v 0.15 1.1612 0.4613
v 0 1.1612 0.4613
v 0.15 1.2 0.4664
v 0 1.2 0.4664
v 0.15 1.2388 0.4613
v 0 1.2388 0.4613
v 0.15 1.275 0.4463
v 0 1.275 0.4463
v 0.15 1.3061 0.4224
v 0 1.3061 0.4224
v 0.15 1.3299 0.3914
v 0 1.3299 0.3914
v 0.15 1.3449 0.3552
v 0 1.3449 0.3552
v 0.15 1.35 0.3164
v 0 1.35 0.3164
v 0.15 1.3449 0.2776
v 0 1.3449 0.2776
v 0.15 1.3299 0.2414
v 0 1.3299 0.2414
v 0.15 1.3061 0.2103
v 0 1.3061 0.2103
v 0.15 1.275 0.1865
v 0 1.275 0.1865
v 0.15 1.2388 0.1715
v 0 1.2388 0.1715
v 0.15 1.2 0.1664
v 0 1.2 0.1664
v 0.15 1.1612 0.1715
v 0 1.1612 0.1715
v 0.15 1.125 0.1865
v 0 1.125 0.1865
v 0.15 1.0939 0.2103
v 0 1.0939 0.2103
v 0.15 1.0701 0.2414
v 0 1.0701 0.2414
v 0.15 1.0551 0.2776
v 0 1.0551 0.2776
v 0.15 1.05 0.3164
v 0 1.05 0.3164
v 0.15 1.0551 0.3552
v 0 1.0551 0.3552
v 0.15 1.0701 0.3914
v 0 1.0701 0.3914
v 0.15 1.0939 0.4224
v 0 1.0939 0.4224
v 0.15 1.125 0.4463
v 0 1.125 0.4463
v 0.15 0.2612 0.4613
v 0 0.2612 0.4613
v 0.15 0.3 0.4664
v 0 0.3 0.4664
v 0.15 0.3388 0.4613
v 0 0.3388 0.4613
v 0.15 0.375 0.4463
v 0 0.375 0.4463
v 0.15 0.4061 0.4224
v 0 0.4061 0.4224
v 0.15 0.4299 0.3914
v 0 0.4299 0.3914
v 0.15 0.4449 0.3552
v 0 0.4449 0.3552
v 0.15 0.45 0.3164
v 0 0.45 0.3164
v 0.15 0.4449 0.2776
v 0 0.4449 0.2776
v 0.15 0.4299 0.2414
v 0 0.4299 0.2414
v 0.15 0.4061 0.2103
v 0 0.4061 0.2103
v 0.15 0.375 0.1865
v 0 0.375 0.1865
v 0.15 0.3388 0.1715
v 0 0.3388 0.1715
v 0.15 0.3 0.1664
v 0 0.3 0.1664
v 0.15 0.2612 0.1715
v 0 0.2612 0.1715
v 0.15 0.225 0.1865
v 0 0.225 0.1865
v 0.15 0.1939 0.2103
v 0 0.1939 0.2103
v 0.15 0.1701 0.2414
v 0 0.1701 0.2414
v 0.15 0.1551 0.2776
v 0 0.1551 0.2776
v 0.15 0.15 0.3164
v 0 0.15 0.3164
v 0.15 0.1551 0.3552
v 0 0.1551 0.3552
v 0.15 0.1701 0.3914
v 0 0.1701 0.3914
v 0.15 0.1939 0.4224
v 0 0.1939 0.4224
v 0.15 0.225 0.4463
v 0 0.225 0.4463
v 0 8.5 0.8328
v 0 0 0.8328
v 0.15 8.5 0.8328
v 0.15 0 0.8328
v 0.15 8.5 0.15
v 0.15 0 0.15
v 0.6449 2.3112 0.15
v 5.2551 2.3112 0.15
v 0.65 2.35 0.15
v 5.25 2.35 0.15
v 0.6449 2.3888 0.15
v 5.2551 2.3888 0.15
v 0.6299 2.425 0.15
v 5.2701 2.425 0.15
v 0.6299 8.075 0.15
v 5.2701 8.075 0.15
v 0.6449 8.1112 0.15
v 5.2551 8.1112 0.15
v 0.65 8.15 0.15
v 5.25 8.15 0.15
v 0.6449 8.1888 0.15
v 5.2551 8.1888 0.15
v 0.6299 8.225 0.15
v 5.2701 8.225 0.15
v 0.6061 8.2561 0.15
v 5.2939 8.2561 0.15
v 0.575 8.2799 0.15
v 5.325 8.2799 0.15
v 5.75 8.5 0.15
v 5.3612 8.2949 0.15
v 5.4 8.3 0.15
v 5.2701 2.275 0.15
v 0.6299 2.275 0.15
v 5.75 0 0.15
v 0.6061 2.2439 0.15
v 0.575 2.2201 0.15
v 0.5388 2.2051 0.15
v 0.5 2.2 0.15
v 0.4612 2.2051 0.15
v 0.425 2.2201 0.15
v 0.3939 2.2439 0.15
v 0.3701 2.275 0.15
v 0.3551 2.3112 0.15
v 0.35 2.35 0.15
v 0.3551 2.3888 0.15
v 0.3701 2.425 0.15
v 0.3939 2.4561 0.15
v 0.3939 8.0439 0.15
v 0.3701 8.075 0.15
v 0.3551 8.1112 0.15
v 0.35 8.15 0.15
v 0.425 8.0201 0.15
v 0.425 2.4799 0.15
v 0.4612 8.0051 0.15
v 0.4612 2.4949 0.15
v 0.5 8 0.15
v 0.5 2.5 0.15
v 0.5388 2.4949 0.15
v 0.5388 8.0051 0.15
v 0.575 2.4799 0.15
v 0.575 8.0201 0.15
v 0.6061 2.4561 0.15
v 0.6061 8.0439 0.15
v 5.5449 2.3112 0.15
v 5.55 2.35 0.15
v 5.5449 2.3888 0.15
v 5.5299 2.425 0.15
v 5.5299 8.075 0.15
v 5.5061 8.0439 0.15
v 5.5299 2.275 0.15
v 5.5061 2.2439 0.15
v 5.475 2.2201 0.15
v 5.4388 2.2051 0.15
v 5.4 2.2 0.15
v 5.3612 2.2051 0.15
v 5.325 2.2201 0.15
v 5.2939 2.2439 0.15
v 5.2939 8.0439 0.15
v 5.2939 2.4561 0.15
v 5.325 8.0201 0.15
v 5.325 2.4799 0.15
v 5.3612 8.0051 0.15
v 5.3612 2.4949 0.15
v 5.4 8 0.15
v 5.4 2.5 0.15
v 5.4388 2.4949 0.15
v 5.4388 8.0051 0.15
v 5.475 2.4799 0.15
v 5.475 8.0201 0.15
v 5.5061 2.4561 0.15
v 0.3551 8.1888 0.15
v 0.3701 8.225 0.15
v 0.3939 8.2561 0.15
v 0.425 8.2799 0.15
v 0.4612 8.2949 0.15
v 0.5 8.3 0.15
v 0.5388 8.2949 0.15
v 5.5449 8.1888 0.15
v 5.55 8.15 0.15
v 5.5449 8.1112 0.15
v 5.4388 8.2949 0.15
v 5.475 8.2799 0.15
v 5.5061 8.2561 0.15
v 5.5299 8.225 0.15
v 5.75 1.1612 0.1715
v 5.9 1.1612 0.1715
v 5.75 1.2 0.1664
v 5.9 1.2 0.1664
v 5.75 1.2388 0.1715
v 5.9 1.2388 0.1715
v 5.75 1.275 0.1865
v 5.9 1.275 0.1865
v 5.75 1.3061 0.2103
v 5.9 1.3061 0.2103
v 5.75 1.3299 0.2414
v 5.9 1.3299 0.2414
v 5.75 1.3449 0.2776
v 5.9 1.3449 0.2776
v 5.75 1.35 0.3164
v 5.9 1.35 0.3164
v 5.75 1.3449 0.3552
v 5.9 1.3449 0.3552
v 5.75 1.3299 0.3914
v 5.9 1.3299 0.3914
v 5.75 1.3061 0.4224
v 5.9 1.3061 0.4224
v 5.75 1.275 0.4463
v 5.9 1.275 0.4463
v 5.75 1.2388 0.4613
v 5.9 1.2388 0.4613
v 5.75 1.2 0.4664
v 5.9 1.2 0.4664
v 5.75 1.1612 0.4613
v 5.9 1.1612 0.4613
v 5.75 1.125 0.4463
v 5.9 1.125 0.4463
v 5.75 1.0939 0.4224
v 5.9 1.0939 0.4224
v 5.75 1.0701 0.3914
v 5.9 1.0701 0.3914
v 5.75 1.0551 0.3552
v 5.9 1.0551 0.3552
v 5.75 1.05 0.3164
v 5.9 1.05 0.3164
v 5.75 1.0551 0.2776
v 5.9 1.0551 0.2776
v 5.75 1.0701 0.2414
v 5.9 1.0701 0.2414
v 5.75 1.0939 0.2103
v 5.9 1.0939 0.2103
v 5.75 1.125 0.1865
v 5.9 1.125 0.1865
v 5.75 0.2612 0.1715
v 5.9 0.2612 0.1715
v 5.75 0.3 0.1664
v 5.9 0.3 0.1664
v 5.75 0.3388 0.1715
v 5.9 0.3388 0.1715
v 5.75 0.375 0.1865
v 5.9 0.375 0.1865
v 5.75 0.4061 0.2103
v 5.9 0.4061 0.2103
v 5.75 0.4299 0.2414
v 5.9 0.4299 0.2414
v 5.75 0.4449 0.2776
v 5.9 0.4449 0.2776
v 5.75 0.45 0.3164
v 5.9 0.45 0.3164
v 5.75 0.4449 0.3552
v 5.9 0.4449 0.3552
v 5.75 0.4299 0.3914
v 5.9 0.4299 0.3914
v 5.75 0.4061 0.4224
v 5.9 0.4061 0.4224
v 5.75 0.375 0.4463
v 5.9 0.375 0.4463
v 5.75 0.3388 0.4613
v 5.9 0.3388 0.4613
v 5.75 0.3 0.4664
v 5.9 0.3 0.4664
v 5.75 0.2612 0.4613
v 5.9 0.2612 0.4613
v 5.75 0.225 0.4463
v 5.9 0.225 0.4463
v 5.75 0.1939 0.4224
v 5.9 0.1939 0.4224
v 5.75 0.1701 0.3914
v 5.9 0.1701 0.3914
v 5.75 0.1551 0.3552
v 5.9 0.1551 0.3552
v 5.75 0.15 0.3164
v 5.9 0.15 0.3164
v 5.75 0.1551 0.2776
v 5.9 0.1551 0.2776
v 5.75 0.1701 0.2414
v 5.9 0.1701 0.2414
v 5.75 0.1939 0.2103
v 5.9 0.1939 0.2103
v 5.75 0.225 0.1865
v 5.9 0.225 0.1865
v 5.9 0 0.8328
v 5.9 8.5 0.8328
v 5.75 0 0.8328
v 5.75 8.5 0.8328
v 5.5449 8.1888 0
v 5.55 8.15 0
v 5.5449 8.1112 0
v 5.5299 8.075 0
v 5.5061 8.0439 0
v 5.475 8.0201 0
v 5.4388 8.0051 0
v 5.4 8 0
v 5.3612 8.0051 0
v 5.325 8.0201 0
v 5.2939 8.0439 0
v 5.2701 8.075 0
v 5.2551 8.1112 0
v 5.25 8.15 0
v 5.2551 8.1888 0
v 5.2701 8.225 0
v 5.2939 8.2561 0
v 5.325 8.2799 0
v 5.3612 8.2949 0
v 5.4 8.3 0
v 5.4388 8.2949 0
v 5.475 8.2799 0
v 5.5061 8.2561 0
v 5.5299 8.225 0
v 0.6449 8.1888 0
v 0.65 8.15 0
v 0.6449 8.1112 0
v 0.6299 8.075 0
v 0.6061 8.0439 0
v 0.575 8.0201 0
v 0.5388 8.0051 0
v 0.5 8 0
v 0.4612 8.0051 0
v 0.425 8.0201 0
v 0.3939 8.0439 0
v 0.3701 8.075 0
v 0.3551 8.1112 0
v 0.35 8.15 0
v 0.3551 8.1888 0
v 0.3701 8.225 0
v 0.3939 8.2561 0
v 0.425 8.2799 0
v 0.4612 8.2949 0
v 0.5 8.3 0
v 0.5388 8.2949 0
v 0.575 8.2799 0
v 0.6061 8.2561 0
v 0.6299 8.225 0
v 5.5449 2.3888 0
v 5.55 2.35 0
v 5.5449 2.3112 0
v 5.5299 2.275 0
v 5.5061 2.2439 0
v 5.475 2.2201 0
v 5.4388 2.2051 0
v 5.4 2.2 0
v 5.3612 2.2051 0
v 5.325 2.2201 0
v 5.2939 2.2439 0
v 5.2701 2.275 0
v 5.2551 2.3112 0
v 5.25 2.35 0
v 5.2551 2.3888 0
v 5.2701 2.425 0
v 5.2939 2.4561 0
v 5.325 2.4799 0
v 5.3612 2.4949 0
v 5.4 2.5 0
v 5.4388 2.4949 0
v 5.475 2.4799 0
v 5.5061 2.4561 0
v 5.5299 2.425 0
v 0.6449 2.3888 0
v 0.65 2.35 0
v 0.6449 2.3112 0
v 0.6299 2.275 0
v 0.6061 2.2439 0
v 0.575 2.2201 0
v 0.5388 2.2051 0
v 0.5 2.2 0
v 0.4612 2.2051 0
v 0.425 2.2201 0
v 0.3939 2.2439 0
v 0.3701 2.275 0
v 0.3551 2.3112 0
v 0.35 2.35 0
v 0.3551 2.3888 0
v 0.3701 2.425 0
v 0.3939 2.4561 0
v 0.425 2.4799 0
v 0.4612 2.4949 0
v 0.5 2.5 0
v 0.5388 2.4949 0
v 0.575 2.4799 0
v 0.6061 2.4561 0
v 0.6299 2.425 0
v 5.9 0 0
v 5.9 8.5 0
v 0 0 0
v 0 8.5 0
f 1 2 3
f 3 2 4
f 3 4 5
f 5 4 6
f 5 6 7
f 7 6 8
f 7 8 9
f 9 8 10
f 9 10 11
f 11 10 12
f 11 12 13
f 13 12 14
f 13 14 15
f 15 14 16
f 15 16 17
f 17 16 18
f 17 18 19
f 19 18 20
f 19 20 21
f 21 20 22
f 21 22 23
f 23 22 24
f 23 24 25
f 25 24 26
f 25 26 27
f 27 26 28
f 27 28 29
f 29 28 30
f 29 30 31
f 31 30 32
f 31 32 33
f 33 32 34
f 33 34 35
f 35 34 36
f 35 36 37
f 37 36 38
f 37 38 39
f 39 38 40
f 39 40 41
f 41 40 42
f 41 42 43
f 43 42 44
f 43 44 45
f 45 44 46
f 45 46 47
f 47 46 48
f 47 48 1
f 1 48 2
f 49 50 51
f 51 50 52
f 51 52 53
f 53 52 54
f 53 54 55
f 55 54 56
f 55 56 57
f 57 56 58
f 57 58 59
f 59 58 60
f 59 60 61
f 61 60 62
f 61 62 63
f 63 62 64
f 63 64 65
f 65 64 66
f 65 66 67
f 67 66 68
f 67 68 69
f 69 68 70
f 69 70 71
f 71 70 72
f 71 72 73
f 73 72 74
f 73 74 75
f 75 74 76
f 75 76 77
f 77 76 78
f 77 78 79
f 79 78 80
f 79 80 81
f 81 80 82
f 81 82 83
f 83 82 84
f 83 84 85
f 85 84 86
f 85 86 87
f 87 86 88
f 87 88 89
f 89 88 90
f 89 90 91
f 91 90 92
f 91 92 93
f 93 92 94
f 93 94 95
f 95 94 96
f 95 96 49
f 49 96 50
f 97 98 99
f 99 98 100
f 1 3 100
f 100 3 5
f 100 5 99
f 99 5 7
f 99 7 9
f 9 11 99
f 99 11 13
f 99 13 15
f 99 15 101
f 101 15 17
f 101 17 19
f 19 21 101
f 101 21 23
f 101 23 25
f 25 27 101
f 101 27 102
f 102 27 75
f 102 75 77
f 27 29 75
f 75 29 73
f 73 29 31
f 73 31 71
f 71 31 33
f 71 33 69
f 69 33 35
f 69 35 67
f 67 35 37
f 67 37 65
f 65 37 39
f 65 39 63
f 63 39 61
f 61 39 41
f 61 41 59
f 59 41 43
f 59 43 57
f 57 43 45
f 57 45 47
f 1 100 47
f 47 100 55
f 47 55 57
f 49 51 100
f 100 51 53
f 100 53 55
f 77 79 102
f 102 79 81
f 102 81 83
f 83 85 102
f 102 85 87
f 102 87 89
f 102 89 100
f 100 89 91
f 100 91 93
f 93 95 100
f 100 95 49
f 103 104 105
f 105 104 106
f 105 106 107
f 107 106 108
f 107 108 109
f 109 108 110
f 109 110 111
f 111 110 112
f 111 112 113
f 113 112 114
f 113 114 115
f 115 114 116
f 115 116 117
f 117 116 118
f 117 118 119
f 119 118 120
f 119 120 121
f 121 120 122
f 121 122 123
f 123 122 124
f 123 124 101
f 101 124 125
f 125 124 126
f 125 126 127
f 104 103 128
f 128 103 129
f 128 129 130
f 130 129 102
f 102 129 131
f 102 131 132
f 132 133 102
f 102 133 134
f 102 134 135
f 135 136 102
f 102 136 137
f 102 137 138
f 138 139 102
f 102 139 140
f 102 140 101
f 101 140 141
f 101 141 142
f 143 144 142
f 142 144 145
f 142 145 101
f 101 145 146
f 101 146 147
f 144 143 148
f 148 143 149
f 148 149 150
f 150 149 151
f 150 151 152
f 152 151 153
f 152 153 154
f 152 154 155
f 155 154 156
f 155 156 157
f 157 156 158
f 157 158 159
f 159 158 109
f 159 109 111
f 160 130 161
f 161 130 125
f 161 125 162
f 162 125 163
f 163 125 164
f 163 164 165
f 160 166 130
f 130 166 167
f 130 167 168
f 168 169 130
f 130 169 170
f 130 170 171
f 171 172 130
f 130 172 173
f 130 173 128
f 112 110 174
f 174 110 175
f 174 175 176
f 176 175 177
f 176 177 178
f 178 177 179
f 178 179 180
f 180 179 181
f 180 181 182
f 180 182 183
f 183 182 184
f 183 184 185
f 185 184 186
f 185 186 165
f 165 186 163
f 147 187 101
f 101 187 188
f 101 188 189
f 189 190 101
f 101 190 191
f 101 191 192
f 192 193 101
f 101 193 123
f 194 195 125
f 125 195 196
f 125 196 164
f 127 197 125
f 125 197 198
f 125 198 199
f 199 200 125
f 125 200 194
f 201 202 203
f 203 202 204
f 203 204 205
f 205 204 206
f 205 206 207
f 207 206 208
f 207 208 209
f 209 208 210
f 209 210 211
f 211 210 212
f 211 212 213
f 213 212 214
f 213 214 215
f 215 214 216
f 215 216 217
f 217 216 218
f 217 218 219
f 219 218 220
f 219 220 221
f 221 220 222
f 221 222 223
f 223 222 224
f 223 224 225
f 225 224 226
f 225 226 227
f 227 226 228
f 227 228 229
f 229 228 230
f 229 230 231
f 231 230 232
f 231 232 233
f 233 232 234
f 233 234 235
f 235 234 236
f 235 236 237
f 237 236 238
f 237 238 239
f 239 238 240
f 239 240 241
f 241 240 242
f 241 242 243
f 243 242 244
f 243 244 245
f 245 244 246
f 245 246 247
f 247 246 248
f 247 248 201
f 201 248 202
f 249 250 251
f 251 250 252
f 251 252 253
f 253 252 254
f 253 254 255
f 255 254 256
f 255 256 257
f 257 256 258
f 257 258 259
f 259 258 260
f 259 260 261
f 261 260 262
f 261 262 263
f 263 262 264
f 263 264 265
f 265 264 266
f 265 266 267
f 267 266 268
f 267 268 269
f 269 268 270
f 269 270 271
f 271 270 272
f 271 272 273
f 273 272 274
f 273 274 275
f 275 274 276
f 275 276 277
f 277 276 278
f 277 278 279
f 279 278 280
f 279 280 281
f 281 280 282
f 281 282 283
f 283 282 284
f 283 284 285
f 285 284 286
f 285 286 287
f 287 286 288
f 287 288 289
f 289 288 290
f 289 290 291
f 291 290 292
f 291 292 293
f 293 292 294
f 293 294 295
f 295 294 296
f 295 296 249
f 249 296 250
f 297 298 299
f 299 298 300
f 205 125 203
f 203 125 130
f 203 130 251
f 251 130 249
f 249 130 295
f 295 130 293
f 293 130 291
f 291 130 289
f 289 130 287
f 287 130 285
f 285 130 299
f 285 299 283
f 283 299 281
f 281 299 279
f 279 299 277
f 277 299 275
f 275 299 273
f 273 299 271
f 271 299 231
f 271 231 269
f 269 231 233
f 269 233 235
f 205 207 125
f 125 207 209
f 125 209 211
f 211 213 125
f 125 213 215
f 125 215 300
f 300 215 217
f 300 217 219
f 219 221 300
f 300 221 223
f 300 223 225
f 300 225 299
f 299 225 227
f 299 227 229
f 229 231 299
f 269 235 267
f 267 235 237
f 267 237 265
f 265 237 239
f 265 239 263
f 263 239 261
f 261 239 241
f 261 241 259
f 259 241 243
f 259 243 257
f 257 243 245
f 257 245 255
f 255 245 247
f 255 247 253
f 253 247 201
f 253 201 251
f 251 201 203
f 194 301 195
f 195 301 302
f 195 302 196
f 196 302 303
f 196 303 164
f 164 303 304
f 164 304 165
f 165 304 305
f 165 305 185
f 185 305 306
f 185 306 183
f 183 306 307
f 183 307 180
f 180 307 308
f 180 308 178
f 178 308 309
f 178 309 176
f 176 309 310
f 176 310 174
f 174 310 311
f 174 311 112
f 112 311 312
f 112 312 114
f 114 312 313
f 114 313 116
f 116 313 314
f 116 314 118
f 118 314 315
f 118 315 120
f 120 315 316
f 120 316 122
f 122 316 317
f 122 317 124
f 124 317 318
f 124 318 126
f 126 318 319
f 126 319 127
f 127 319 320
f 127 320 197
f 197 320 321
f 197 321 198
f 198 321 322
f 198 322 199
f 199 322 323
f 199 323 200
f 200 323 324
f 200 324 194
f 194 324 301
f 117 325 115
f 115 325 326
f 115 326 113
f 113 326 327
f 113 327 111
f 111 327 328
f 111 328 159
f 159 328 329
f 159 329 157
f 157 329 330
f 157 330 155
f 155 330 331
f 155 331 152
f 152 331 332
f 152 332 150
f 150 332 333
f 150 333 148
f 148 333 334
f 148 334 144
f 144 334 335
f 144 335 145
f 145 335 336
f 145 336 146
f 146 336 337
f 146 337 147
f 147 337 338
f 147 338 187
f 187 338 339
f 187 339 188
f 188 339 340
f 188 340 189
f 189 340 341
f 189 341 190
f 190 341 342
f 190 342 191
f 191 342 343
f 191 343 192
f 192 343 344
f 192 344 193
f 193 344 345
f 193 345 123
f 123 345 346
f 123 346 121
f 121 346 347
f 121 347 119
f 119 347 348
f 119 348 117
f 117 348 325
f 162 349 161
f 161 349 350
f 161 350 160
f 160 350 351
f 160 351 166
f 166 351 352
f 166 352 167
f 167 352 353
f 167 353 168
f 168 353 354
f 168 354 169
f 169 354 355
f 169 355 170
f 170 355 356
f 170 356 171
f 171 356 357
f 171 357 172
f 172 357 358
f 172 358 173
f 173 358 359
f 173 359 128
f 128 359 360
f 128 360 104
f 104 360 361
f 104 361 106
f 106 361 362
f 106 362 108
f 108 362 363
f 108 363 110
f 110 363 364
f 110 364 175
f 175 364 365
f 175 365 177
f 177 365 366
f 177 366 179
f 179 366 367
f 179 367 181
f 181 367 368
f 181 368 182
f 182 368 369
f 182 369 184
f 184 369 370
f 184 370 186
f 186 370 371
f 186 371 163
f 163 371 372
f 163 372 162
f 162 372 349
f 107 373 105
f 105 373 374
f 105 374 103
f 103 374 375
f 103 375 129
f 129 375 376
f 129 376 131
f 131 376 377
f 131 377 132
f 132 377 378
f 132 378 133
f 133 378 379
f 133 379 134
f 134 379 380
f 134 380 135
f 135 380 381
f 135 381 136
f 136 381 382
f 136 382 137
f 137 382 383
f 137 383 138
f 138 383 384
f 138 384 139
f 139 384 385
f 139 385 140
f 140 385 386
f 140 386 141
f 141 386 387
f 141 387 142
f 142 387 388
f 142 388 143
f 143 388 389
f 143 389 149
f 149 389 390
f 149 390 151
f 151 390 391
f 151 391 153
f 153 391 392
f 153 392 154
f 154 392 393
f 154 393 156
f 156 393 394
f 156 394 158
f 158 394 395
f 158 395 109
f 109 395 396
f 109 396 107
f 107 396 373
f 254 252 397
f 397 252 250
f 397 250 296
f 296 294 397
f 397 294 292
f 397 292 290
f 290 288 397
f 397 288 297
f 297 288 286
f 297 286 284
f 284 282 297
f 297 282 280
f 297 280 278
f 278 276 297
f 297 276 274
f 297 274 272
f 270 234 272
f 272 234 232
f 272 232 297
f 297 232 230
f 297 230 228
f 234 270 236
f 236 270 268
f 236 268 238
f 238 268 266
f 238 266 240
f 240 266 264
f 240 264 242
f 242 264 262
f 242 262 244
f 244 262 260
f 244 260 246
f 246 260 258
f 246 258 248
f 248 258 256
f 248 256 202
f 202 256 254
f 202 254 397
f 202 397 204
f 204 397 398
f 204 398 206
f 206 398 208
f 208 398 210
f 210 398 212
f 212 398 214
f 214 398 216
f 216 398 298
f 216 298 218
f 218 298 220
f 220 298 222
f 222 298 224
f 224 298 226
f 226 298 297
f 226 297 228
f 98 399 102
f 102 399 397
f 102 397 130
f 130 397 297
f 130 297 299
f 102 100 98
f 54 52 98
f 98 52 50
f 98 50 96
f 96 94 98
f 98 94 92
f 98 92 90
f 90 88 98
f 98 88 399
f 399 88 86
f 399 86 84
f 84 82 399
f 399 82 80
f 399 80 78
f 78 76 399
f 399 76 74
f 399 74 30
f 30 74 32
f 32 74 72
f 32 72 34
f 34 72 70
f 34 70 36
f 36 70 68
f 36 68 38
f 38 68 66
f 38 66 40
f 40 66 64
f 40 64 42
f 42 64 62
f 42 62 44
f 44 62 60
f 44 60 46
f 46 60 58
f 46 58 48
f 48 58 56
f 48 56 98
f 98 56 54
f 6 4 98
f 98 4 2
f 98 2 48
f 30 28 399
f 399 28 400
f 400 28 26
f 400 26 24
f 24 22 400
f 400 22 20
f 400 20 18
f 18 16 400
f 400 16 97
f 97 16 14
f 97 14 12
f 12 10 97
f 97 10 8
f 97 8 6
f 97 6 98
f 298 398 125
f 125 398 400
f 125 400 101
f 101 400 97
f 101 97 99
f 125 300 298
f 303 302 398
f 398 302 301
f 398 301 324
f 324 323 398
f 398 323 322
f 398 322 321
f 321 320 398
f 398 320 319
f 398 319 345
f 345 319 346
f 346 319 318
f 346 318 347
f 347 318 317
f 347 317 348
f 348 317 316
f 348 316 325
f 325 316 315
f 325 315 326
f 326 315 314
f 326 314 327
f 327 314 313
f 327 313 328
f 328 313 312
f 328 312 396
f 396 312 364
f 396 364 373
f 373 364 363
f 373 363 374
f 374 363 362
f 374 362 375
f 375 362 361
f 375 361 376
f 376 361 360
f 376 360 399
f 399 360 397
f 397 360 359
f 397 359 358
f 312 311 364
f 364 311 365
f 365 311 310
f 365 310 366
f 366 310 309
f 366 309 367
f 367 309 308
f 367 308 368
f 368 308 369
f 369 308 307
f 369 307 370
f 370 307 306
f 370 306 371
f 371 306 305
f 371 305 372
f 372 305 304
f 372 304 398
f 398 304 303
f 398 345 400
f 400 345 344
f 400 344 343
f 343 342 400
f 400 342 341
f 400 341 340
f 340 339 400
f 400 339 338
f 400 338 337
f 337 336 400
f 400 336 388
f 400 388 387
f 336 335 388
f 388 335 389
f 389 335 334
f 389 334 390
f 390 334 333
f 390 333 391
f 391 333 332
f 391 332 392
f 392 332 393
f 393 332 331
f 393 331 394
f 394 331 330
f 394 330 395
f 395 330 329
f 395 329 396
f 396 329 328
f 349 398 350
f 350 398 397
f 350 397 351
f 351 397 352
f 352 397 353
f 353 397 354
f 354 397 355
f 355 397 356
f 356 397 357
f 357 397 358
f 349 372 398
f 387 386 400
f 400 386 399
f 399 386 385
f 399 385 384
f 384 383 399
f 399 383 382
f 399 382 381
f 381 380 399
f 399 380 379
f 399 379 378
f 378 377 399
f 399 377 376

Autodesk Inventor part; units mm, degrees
ref_plane "YZ Plane" through (0, 0, 0) normal (1, 0, 0) x (0, 1, 0)
ref_plane "XZ Plane" through (0, 0, 0) normal (0, 1, 0) x (-1, 0, 0)
ref_plane "XY Plane" through (0, 0, 0) normal (0, 0, 1) x (1, 0, 0)
sketch "Boceto1" plane through (0, 0, 0) normal (0, 0, 1) x (1, 0, 0)
  line L0 (0.15, 0) -> (0, 0)
  line L1 (0, 0) -> (0, 8.5)
  line L2 (0, 8.5) -> (0.15, 8.5)
  line L3 (0.15, 8.5) -> (0.15, 0)
  line L4 (0.15, 0) -> (5.9, 0)
  line L5 (5.9, 0) -> (5.9, 8.5)
  line L6 (5.9, 8.5) -> (5.75, 8.5)
  line L7 (5.75, 8.5) -> (5.6932, 0)
  line L8 (5.75, 8.5) -> (0.15, 8.5)
  circle A0 centre (0.5, 2.35) radius 0.15
  circle A1 centre (5.4, 2.35) radius 0.15
  circle A2 centre (0.5, 8.15) radius 0.15
  circle A3 centre (5.4, 8.15) radius 0.15
extrude "Extrusión1" add sketch "Boceto1" along normal blind 0.15
sketch "Boceto2" plane through (5.9, 0, 0) normal (1, 0, 0) x (0, 0, -1)
  line L0 (0, 0) -> (0, 8.5)
  line L1 (0, 8.5) -> (-0.8328, 8.5)
  line L2 (-0.8328, 8.5) -> (-0.8328, 0)
  line L3 (-0.8328, 0) -> (0, 0)
  circle A0 centre (-0.3164, 0.3) radius 0.15
  circle A1 centre (-0.3164, 1.2) radius 0.15
  line L4 (0, 8.5) -> (-0.15, 8.5)
  line L5 (-0.15, 8.5) -> (-0.15, 0)
extrude "Extrusión2" add sketch "Boceto2" against normal blind 0.15 contours L3 L2 L1 L5
sketch "Boceto3" plane through (0, 0, 0) normal (-1, 0, 0) x (0, 0, 1)
  line L0 (0, 0) -> (0, 8.5)
  line L1 (0, 8.5) -> (0.8328, 8.5)
  line L2 (0.8328, 8.5) -> (0.8328, 0)
  line L3 (0.8328, 0) -> (0, 0)
  circle A0 centre (0.3164, 0.3) radius 0.15
  circle A1 centre (0.3164, 1.2) radius 0.15
  line L4 (0, 8.5) -> (0.15, 8.5)
  line L5 (0.15, 8.5) -> (0.15, 0)
extrude "Extrusión3" add sketch "Boceto3" against normal blind 0.15 contours L5 L1 L2 L3
properties part number "learnbotAgarreOdroid"
